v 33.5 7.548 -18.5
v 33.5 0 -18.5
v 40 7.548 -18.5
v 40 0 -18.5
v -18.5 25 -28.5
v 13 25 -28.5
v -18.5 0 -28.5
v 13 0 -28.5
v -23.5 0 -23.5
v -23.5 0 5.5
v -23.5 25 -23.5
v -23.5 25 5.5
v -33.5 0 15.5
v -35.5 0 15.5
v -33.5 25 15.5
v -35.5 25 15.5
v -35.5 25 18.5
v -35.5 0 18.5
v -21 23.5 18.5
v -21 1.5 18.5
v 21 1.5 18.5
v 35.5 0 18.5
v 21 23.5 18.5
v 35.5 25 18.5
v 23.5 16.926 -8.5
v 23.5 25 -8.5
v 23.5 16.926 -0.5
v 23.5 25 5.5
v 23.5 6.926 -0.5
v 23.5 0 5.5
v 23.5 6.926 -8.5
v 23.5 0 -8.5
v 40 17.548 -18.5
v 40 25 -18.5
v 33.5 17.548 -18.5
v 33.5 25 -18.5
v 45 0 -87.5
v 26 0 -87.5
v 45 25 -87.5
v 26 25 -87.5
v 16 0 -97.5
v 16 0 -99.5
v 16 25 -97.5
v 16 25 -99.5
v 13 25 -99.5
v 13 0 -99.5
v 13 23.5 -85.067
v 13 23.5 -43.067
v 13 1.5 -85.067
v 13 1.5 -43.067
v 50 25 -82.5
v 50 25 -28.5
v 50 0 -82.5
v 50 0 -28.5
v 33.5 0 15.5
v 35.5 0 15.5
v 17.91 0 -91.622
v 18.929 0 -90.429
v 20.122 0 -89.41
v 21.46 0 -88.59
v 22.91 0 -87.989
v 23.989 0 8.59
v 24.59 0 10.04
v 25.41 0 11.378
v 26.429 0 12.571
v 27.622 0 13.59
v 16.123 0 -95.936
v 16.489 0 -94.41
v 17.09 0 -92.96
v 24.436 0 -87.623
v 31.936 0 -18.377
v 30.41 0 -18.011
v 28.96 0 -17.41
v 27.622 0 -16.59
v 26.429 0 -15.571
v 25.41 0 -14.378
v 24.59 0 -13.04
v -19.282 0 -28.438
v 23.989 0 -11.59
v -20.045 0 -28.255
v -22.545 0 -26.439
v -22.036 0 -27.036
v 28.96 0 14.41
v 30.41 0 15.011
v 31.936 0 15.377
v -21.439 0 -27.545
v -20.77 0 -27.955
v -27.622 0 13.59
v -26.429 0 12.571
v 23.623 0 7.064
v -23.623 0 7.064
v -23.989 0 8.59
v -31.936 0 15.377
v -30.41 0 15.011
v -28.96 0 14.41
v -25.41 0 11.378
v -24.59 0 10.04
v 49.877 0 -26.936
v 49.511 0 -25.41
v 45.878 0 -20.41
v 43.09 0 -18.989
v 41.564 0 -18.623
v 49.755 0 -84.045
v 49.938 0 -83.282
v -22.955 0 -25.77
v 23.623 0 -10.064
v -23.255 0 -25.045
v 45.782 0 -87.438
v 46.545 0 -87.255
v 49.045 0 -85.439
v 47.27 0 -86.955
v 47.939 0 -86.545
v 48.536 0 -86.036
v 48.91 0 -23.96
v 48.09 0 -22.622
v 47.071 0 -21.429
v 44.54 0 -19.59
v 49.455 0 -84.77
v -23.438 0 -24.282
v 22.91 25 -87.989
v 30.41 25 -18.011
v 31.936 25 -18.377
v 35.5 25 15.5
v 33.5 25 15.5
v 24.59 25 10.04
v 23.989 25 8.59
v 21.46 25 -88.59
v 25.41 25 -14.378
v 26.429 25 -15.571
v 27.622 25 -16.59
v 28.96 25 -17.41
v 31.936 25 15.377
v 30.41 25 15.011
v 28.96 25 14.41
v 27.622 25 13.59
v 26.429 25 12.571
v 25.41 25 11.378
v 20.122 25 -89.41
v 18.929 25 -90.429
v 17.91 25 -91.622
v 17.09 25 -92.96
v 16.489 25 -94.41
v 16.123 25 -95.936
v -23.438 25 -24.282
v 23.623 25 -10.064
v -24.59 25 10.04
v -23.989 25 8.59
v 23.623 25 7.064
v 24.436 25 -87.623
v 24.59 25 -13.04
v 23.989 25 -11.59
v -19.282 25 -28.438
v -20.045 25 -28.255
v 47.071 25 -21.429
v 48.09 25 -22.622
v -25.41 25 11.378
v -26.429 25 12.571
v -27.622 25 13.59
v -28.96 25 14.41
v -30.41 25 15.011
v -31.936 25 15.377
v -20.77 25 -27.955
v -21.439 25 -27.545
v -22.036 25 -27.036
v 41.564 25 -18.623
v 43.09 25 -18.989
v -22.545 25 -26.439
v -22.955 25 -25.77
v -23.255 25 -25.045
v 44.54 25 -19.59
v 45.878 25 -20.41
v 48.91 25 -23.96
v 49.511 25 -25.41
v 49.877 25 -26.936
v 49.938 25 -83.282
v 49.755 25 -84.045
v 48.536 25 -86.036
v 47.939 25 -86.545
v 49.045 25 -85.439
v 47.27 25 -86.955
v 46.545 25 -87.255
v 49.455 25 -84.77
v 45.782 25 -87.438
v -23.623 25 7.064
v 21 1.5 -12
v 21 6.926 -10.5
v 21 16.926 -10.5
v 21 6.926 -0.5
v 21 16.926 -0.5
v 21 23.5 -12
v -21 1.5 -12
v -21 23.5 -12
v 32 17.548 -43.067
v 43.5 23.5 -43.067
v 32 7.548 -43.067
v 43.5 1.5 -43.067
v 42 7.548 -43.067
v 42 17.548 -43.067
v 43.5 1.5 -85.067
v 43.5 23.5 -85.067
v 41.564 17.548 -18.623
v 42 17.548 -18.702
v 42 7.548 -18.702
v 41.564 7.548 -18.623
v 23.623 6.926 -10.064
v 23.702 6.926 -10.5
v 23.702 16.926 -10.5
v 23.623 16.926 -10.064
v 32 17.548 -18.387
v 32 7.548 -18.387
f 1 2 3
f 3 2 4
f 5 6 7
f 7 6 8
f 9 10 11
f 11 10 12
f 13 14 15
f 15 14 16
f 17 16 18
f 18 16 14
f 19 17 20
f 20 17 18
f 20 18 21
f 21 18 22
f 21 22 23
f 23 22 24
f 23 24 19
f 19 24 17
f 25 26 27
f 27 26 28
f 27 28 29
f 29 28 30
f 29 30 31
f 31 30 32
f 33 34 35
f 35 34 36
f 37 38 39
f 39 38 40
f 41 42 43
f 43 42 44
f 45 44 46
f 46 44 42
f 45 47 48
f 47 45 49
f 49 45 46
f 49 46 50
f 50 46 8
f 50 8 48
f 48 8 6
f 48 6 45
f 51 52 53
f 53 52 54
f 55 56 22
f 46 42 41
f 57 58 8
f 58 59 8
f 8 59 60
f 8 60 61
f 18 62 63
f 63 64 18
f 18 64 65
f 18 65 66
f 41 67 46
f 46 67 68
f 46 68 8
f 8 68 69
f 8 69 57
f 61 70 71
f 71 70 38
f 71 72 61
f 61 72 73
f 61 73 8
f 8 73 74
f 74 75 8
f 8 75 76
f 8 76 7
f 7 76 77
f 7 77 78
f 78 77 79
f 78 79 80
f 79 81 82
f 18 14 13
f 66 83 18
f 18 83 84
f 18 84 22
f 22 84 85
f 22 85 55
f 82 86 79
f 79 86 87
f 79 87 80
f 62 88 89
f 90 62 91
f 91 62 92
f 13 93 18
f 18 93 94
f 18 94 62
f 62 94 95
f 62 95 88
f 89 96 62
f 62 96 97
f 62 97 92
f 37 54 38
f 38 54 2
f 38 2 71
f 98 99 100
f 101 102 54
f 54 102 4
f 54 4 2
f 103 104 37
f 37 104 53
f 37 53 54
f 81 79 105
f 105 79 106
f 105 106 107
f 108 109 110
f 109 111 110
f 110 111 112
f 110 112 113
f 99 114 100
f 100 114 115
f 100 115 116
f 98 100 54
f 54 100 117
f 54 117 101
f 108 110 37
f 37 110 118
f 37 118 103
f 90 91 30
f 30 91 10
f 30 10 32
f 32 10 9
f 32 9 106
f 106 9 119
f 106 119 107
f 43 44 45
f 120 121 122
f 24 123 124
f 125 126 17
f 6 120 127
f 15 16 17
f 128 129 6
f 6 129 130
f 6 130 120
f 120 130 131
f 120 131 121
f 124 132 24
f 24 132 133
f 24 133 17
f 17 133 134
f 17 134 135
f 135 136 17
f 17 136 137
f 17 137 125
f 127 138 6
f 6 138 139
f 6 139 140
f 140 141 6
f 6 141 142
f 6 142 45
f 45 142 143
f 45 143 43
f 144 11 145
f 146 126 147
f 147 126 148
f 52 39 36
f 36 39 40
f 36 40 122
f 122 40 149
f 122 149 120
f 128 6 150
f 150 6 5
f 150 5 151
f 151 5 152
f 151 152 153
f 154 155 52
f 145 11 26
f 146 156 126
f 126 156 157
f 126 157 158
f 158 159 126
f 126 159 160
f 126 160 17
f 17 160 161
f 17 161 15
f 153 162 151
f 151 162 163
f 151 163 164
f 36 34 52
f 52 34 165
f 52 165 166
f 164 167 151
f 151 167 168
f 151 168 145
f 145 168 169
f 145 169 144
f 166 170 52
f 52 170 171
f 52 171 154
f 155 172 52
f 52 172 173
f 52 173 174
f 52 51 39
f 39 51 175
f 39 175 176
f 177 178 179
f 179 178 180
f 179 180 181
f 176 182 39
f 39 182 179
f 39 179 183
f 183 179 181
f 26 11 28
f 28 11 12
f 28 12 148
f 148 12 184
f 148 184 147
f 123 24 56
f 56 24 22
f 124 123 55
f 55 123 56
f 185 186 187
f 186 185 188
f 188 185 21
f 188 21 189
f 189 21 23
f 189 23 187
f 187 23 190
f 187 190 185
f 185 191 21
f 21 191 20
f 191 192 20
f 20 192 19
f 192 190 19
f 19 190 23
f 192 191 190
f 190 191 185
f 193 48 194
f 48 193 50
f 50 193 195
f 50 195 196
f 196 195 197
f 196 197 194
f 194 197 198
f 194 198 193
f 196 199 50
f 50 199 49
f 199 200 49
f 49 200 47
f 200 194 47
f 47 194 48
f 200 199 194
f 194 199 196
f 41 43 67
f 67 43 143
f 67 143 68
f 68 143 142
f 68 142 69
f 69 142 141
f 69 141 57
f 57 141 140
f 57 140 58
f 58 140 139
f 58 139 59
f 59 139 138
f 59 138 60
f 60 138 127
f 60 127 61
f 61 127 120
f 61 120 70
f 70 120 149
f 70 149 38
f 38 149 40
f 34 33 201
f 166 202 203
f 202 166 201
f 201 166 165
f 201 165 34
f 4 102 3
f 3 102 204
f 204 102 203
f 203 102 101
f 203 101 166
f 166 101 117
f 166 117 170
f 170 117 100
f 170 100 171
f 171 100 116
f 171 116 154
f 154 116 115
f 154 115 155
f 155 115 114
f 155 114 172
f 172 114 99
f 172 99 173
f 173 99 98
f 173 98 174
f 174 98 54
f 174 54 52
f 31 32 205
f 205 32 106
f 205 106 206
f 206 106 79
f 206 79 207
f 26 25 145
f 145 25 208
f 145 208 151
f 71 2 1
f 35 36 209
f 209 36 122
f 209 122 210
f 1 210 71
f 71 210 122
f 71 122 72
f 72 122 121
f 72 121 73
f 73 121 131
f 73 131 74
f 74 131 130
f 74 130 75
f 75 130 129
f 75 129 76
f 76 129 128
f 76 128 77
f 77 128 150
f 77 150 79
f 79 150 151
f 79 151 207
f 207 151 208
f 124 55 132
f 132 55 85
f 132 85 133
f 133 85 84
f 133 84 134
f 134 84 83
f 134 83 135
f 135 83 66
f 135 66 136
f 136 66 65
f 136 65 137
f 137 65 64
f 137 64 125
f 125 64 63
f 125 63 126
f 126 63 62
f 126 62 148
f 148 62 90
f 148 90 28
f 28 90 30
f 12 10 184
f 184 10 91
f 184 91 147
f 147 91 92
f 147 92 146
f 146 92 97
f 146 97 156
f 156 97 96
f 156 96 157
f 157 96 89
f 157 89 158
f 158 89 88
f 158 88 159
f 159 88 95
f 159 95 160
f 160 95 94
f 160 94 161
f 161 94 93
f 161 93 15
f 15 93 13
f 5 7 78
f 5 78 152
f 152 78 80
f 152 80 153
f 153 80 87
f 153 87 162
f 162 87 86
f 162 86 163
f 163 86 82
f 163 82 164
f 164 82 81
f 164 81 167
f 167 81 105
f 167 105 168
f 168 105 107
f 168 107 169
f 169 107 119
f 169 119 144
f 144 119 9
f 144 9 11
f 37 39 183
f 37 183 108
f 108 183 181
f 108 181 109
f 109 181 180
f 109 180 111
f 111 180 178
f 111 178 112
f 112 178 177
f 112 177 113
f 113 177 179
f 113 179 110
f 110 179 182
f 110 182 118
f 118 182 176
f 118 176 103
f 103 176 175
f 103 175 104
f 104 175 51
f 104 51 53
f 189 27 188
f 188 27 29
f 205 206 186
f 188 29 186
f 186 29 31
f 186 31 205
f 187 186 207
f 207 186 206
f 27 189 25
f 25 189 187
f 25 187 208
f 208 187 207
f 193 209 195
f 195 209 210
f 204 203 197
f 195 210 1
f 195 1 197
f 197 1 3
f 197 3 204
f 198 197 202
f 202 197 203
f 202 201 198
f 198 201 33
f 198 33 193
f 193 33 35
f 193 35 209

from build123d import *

# Parameters (mm, degrees)
BOSS_EXTRUDE1_DEPTH = 25
SKETCH2_W           = 42
SKETCH2_H           = 22
CUT_EXTRUDE1_DEPTH  = 30.5
SKETCH3_W           = 42
SKETCH3_H           = 22
CUT_EXTRUDE2_DEPTH  = 30.5
FILLET1_R           = 10
FILLET2_R           = 5
FILLET3_R           = 5
SKETCH5_W           = 10
SKETCH5_H           = 5
CUT_EXTRUDE3_DEPTH  = 30.5
SKETCH6_W           = 10
SKETCH6_H           = 10
CUT_EXTRUDE4_DEPTH  = 30.5


with BuildPart() as part:
    # Sketch1 → Boss-Extrude1 (new body)
    with BuildSketch(Plane(origin=(0, 0, 0), x_dir=(1, 0, 0), z_dir=(0, 1, 0))):
        Polygon((-23.5, -15.5), (-35.5, -15.5), (-35.5, -18.5), (0, -18.5), (35.5, -18.5), (35.5, -15.5), (23.5, -15.5), (23.5, 18.5), (50, 18.5), (50, 87.5), (16, 87.5), (16, 99.5), (13, 99.5), (13, 28.5), (-23.5, 28.5), align=None)
    extrude(amount=BOSS_EXTRUDE1_DEPTH)

    # Sketch2 → Cut-Extrude1 (cut)
    with BuildSketch(Plane.XY.offset(18.5)):
        with Locations((0, 12.5)):
            Rectangle(SKETCH2_W, SKETCH2_H)
    extrude(amount=-CUT_EXTRUDE1_DEPTH, mode=Mode.SUBTRACT)

    # Sketch3 → Cut-Extrude2 (cut)
    with BuildSketch(Plane.ZY.offset(-13)):
        with Locations((-64.067301197, 12.5)):
            Rectangle(SKETCH3_W, SKETCH3_H)
    extrude(amount=-CUT_EXTRUDE2_DEPTH, mode=Mode.SUBTRACT)

    # Fillet1
    fillet1_edges = [part.edges().sort_by_distance(p)[0] for p in [
        (16, 12.5, -87.5),
        (50, 12.5, -18.5),
        (23.5, 12.5, -18.5),
        (-23.5, 12.5, 15.5),
        (23.5, 12.5, 15.5),
    ]]
    fillet(fillet1_edges, radius=FILLET1_R)

    # Fillet2
    fillet2_edges = [part.edges().sort_by_distance(p)[0] for p in [
        (-23.5, 12.5, -28.5),
    ]]
    fillet(fillet2_edges, radius=FILLET2_R)

    # Fillet3
    fillet3_edges = [part.edges().sort_by_distance(p)[0] for p in [
        (50, 12.5, -87.5),
    ]]
    fillet(fillet3_edges, radius=FILLET3_R)

    # Sketch5 → Cut-Extrude3 (cut)
    with BuildSketch(Plane.ZY.offset(-21)):
        with Locations((-5.5, 9.426274429)):
            Rectangle(SKETCH5_W, SKETCH5_H)
        with Locations((-5.5, 14.426274429)):
            Rectangle(SKETCH5_W, SKETCH5_H)
    extrude(amount=-CUT_EXTRUDE3_DEPTH, mode=Mode.SUBTRACT)

    # Sketch6 → Cut-Extrude4 (cut)
    with BuildSketch(Plane(origin=(0, 0, -43.067301197), x_dir=(-1, 0, 0), z_dir=(0, 0, -1))):
        with Locations((-37, 12.54801)):
            Rectangle(SKETCH6_W, SKETCH6_H)
    extrude(amount=-CUT_EXTRUDE4_DEPTH, mode=Mode.SUBTRACT)


solid = part.part
